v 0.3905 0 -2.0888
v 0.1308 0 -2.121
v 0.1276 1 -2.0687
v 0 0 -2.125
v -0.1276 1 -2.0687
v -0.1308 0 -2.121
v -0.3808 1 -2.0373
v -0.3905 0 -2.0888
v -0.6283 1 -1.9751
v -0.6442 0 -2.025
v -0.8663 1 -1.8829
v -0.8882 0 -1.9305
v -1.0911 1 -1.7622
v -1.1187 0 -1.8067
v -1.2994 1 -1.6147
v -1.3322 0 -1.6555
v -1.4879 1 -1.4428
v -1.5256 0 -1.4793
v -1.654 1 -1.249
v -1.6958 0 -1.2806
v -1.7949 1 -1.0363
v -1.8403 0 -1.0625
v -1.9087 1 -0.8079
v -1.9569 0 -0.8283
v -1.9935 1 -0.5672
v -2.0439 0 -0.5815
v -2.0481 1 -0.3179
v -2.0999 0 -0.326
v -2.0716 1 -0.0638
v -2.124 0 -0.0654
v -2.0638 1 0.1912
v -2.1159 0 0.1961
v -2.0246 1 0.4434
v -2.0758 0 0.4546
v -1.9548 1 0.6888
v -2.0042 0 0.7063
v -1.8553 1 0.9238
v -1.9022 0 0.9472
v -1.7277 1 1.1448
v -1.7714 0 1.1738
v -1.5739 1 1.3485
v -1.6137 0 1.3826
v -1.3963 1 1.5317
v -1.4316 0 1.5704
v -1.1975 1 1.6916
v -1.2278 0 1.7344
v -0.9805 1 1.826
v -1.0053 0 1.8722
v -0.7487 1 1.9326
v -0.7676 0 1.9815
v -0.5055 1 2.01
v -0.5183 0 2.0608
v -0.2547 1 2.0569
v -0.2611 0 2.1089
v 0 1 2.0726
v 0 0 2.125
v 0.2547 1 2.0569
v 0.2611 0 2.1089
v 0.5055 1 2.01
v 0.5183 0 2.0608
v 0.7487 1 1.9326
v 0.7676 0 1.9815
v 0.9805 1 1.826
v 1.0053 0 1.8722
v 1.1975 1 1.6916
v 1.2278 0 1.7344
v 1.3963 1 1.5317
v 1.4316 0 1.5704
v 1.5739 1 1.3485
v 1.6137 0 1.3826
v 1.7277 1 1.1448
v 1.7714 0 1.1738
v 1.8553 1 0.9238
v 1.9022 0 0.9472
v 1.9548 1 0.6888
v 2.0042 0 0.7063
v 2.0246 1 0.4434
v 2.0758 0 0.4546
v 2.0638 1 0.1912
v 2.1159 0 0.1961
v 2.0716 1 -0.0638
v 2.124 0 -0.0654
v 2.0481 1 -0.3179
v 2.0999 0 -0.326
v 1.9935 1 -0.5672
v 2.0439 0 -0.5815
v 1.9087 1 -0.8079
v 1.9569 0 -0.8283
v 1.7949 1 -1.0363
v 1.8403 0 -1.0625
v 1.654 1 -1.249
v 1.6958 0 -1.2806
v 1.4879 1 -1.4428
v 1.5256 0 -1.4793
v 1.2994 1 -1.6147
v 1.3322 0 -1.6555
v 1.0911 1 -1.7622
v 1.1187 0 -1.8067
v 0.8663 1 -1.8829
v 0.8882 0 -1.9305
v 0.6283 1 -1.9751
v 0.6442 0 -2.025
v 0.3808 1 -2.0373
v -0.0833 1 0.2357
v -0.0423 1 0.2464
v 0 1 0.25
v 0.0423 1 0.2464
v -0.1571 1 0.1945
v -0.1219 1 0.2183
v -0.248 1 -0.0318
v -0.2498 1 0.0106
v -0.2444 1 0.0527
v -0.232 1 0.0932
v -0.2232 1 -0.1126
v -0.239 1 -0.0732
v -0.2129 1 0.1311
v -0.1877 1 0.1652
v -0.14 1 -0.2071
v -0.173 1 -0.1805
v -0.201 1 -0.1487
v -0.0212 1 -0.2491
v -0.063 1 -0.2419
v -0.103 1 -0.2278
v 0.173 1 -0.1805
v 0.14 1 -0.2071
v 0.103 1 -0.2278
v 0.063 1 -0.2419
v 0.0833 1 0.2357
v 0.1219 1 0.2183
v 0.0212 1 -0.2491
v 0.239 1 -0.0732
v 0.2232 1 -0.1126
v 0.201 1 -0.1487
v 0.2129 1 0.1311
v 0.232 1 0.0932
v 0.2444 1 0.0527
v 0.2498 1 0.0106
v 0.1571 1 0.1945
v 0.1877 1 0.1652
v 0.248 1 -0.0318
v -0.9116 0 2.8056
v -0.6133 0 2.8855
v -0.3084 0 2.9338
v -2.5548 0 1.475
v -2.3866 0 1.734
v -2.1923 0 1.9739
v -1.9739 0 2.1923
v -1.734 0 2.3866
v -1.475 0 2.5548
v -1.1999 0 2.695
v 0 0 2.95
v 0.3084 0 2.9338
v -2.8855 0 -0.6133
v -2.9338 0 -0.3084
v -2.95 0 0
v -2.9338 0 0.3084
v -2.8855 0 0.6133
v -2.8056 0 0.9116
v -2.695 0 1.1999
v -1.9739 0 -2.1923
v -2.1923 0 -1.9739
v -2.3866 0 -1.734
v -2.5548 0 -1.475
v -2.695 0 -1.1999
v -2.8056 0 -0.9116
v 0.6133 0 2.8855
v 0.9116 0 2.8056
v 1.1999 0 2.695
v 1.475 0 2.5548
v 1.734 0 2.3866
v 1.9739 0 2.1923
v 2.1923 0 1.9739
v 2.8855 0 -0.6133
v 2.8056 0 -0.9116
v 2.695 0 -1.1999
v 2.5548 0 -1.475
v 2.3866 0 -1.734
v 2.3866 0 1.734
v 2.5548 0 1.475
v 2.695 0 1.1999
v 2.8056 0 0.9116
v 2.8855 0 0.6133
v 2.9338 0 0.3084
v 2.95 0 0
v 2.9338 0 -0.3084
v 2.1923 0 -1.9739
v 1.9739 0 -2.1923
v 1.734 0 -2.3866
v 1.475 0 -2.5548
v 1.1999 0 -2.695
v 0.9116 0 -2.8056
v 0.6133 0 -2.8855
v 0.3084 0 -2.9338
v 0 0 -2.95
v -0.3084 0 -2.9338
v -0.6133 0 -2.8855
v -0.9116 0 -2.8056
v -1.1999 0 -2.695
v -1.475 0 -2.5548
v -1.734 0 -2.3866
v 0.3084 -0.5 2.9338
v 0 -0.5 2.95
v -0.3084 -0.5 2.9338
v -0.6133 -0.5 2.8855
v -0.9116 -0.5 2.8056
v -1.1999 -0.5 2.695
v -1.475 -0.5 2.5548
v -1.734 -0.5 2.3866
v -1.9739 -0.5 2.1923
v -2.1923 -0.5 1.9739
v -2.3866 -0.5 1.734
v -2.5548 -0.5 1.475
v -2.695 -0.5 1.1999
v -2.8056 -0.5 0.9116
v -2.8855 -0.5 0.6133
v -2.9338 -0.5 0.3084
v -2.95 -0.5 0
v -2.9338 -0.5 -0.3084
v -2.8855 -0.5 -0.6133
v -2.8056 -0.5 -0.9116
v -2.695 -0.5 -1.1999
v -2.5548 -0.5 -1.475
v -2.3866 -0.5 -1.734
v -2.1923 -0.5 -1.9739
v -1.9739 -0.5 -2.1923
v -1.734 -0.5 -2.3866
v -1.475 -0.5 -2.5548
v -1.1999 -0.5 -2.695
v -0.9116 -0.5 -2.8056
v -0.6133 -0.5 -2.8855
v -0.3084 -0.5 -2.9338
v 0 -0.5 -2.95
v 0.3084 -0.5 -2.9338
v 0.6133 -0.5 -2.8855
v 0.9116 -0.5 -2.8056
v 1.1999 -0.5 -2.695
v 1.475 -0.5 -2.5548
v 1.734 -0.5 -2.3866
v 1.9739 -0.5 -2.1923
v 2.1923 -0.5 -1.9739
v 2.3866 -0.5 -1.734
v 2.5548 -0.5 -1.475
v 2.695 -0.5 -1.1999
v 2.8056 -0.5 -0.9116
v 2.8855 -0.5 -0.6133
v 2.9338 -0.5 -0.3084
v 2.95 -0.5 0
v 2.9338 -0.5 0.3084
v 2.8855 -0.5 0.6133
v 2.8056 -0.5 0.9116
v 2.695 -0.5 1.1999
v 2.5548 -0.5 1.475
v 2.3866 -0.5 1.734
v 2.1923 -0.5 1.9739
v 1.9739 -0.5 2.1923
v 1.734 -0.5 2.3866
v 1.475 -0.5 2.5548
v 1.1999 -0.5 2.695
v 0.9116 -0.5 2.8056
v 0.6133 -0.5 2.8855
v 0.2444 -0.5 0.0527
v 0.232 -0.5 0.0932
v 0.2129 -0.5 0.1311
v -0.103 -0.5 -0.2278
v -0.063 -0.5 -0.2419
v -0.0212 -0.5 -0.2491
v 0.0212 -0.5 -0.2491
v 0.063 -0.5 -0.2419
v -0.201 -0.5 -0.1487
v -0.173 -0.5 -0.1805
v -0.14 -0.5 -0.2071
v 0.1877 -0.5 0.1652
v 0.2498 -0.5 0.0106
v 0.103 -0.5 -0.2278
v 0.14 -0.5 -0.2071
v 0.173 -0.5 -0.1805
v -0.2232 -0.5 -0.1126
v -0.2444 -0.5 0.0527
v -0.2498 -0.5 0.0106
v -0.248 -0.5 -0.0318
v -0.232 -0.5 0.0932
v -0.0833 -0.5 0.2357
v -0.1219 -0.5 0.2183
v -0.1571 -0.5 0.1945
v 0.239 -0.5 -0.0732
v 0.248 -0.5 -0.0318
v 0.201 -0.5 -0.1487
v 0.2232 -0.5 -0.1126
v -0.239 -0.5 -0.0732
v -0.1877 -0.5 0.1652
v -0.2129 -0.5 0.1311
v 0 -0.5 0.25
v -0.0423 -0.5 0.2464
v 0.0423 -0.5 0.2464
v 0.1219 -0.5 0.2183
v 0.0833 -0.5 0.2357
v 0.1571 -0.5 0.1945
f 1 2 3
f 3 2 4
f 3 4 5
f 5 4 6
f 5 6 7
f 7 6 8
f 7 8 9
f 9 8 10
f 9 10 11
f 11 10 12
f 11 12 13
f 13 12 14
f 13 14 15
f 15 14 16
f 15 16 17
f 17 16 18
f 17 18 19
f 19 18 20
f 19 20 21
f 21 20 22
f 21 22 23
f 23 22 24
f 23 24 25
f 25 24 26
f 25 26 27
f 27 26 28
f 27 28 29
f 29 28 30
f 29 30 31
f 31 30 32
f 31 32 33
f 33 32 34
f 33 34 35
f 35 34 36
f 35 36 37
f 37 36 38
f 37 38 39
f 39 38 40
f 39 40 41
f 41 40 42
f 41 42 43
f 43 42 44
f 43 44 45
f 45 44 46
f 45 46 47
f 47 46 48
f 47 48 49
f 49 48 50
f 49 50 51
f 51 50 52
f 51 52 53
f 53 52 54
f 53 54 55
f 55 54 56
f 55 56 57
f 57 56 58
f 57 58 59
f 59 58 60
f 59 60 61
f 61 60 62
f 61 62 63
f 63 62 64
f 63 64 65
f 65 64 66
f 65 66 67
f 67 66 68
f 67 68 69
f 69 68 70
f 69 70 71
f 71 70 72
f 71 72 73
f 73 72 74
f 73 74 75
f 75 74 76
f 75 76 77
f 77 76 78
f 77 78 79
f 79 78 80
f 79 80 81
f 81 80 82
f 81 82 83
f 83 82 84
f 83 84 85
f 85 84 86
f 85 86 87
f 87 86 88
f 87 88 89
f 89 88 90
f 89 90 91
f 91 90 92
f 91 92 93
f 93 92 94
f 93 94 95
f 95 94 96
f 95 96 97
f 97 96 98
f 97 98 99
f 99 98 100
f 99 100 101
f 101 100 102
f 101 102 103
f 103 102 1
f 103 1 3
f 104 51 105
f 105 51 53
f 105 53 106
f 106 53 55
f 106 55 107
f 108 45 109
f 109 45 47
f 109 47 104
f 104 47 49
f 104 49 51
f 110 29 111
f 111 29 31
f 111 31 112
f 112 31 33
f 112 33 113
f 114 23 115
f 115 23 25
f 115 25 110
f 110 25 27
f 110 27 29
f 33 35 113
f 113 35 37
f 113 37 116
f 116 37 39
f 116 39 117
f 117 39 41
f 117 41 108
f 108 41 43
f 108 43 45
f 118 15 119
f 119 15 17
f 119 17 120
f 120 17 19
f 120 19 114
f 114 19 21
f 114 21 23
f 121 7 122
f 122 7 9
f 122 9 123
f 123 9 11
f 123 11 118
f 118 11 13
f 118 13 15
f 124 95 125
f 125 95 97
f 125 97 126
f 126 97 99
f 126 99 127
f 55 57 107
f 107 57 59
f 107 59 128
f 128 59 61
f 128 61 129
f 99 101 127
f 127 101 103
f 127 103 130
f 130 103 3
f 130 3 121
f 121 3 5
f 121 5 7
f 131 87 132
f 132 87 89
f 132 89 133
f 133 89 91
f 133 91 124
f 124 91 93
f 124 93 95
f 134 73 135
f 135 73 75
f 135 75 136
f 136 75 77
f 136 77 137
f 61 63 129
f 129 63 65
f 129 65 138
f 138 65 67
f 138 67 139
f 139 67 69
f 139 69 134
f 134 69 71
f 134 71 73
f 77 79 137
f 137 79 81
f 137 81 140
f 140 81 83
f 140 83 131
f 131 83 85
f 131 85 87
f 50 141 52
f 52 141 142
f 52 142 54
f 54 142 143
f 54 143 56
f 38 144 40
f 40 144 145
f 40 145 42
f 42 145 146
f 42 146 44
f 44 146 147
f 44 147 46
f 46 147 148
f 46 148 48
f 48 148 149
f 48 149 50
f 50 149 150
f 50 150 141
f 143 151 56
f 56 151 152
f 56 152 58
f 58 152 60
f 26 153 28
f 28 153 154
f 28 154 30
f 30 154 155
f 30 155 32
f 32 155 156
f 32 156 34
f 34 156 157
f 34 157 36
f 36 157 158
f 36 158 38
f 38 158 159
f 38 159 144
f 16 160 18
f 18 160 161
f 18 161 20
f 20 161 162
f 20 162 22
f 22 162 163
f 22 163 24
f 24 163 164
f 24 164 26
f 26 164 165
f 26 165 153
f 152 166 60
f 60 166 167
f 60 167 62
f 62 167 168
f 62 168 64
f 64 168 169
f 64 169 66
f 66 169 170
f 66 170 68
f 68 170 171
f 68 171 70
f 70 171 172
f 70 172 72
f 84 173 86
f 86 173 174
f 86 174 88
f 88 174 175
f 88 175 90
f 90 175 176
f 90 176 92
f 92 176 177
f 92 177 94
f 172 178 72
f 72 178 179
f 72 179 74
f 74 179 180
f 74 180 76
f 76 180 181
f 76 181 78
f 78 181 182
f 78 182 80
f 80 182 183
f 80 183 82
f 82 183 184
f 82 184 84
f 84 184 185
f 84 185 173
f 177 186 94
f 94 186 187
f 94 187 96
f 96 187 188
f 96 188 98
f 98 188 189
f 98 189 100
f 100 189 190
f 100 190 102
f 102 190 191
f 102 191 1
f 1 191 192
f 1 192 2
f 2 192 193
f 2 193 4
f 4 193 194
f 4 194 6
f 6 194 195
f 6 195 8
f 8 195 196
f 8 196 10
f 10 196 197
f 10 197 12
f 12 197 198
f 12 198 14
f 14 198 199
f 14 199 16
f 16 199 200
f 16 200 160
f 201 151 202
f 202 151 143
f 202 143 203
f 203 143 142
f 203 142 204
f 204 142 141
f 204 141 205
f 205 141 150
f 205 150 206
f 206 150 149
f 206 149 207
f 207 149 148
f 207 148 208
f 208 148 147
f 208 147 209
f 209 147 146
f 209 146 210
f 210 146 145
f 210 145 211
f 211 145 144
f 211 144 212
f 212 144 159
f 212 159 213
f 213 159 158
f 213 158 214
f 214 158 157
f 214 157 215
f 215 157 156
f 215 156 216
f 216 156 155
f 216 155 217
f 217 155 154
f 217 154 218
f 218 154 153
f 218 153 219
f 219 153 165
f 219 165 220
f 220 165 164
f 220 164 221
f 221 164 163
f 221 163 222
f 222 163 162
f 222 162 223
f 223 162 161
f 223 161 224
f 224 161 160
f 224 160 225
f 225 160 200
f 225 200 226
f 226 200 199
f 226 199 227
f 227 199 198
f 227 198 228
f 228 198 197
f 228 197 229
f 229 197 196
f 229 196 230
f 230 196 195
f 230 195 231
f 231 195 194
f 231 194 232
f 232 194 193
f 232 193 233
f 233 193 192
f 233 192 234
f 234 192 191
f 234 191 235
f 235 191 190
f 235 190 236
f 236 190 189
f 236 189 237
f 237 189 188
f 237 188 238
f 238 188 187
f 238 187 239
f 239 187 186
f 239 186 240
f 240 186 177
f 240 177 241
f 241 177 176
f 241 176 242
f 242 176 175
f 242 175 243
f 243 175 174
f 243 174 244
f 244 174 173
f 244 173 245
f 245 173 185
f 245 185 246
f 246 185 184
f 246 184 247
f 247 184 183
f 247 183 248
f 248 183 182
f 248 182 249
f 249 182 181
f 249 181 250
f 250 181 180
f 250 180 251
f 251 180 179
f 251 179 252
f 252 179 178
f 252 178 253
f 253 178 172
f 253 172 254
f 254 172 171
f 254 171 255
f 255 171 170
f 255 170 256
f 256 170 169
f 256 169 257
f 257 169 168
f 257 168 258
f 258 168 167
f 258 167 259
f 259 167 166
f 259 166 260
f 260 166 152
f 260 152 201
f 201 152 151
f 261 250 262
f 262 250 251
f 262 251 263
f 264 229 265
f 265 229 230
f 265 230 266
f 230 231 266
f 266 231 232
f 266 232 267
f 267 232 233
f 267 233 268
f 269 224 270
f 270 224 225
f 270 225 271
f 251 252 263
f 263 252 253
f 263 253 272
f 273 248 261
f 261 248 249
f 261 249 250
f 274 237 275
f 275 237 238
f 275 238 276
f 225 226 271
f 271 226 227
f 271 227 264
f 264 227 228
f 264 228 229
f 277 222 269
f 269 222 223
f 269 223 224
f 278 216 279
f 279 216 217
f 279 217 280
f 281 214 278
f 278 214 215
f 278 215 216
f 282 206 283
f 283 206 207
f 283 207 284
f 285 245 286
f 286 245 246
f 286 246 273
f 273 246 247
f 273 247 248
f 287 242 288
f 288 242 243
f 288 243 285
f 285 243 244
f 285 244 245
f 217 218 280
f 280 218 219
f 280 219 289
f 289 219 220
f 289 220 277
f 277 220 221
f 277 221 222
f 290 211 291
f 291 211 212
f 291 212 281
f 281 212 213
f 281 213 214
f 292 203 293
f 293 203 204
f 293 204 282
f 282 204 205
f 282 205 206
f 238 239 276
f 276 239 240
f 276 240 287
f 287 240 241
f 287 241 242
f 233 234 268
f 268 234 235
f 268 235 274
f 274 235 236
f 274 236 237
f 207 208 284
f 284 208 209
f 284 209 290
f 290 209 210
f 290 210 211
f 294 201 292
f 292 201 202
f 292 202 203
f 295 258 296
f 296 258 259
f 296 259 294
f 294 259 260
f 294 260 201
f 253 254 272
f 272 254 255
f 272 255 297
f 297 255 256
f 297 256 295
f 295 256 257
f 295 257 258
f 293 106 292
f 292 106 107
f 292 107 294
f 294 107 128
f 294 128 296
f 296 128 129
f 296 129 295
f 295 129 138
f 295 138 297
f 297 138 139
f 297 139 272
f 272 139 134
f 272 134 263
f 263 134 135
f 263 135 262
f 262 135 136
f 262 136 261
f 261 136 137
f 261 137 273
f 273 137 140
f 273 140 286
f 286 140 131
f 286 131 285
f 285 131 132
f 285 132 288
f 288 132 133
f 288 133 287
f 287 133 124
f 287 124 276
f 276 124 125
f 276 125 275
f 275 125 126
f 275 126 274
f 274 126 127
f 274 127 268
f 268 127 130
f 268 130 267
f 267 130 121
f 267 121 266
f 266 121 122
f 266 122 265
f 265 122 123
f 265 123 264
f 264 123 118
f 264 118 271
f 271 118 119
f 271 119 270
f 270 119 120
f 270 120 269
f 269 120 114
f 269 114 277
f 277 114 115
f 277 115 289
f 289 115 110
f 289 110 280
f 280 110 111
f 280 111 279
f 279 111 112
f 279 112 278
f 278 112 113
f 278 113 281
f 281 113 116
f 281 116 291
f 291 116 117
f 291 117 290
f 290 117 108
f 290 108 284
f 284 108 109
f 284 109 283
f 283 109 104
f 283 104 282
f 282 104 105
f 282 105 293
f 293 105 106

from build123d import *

# Parameters (mm, degrees)
SKETCH1_R           = 2.125
BOSS_EXTRUDE1_DEPTH = 1
BOSS_EXTRUDE1_TAPER = 3
SKETCH2_R           = 2.95
BOSS_EXTRUDE2_DEPTH = 0.5
SKETCH3_R           = 0.25
CUT_EXTRUDE1_DEPTH  = 5.43339599


with BuildPart() as part:
    # Sketch1 → Boss-Extrude1 (new body)
    with BuildSketch(Plane(origin=(0, 0, 0), x_dir=(1, 0, 0), z_dir=(0, 1, 0))):
        Circle(SKETCH1_R)
    extrude(amount=BOSS_EXTRUDE1_DEPTH, taper=BOSS_EXTRUDE1_TAPER)

    # Sketch2 → Boss-Extrude2 (add)
    with BuildSketch(Plane.XZ):
        with Locations(Location((0, 0, 0), (0, 0, 270))):
            Circle(SKETCH2_R)
    extrude(amount=BOSS_EXTRUDE2_DEPTH)

    # Sketch3 → Cut-Extrude1 (cut, through all)
    with BuildSketch(Plane(origin=(0, 1, 0), x_dir=(1, 0, 0), z_dir=(0, 1, 0))):
        with Locations(Location((0, 0, 0), (0, 0, 270))):
            Circle(SKETCH3_R)
    extrude(amount=-CUT_EXTRUDE1_DEPTH, mode=Mode.SUBTRACT)


solid = part.part
